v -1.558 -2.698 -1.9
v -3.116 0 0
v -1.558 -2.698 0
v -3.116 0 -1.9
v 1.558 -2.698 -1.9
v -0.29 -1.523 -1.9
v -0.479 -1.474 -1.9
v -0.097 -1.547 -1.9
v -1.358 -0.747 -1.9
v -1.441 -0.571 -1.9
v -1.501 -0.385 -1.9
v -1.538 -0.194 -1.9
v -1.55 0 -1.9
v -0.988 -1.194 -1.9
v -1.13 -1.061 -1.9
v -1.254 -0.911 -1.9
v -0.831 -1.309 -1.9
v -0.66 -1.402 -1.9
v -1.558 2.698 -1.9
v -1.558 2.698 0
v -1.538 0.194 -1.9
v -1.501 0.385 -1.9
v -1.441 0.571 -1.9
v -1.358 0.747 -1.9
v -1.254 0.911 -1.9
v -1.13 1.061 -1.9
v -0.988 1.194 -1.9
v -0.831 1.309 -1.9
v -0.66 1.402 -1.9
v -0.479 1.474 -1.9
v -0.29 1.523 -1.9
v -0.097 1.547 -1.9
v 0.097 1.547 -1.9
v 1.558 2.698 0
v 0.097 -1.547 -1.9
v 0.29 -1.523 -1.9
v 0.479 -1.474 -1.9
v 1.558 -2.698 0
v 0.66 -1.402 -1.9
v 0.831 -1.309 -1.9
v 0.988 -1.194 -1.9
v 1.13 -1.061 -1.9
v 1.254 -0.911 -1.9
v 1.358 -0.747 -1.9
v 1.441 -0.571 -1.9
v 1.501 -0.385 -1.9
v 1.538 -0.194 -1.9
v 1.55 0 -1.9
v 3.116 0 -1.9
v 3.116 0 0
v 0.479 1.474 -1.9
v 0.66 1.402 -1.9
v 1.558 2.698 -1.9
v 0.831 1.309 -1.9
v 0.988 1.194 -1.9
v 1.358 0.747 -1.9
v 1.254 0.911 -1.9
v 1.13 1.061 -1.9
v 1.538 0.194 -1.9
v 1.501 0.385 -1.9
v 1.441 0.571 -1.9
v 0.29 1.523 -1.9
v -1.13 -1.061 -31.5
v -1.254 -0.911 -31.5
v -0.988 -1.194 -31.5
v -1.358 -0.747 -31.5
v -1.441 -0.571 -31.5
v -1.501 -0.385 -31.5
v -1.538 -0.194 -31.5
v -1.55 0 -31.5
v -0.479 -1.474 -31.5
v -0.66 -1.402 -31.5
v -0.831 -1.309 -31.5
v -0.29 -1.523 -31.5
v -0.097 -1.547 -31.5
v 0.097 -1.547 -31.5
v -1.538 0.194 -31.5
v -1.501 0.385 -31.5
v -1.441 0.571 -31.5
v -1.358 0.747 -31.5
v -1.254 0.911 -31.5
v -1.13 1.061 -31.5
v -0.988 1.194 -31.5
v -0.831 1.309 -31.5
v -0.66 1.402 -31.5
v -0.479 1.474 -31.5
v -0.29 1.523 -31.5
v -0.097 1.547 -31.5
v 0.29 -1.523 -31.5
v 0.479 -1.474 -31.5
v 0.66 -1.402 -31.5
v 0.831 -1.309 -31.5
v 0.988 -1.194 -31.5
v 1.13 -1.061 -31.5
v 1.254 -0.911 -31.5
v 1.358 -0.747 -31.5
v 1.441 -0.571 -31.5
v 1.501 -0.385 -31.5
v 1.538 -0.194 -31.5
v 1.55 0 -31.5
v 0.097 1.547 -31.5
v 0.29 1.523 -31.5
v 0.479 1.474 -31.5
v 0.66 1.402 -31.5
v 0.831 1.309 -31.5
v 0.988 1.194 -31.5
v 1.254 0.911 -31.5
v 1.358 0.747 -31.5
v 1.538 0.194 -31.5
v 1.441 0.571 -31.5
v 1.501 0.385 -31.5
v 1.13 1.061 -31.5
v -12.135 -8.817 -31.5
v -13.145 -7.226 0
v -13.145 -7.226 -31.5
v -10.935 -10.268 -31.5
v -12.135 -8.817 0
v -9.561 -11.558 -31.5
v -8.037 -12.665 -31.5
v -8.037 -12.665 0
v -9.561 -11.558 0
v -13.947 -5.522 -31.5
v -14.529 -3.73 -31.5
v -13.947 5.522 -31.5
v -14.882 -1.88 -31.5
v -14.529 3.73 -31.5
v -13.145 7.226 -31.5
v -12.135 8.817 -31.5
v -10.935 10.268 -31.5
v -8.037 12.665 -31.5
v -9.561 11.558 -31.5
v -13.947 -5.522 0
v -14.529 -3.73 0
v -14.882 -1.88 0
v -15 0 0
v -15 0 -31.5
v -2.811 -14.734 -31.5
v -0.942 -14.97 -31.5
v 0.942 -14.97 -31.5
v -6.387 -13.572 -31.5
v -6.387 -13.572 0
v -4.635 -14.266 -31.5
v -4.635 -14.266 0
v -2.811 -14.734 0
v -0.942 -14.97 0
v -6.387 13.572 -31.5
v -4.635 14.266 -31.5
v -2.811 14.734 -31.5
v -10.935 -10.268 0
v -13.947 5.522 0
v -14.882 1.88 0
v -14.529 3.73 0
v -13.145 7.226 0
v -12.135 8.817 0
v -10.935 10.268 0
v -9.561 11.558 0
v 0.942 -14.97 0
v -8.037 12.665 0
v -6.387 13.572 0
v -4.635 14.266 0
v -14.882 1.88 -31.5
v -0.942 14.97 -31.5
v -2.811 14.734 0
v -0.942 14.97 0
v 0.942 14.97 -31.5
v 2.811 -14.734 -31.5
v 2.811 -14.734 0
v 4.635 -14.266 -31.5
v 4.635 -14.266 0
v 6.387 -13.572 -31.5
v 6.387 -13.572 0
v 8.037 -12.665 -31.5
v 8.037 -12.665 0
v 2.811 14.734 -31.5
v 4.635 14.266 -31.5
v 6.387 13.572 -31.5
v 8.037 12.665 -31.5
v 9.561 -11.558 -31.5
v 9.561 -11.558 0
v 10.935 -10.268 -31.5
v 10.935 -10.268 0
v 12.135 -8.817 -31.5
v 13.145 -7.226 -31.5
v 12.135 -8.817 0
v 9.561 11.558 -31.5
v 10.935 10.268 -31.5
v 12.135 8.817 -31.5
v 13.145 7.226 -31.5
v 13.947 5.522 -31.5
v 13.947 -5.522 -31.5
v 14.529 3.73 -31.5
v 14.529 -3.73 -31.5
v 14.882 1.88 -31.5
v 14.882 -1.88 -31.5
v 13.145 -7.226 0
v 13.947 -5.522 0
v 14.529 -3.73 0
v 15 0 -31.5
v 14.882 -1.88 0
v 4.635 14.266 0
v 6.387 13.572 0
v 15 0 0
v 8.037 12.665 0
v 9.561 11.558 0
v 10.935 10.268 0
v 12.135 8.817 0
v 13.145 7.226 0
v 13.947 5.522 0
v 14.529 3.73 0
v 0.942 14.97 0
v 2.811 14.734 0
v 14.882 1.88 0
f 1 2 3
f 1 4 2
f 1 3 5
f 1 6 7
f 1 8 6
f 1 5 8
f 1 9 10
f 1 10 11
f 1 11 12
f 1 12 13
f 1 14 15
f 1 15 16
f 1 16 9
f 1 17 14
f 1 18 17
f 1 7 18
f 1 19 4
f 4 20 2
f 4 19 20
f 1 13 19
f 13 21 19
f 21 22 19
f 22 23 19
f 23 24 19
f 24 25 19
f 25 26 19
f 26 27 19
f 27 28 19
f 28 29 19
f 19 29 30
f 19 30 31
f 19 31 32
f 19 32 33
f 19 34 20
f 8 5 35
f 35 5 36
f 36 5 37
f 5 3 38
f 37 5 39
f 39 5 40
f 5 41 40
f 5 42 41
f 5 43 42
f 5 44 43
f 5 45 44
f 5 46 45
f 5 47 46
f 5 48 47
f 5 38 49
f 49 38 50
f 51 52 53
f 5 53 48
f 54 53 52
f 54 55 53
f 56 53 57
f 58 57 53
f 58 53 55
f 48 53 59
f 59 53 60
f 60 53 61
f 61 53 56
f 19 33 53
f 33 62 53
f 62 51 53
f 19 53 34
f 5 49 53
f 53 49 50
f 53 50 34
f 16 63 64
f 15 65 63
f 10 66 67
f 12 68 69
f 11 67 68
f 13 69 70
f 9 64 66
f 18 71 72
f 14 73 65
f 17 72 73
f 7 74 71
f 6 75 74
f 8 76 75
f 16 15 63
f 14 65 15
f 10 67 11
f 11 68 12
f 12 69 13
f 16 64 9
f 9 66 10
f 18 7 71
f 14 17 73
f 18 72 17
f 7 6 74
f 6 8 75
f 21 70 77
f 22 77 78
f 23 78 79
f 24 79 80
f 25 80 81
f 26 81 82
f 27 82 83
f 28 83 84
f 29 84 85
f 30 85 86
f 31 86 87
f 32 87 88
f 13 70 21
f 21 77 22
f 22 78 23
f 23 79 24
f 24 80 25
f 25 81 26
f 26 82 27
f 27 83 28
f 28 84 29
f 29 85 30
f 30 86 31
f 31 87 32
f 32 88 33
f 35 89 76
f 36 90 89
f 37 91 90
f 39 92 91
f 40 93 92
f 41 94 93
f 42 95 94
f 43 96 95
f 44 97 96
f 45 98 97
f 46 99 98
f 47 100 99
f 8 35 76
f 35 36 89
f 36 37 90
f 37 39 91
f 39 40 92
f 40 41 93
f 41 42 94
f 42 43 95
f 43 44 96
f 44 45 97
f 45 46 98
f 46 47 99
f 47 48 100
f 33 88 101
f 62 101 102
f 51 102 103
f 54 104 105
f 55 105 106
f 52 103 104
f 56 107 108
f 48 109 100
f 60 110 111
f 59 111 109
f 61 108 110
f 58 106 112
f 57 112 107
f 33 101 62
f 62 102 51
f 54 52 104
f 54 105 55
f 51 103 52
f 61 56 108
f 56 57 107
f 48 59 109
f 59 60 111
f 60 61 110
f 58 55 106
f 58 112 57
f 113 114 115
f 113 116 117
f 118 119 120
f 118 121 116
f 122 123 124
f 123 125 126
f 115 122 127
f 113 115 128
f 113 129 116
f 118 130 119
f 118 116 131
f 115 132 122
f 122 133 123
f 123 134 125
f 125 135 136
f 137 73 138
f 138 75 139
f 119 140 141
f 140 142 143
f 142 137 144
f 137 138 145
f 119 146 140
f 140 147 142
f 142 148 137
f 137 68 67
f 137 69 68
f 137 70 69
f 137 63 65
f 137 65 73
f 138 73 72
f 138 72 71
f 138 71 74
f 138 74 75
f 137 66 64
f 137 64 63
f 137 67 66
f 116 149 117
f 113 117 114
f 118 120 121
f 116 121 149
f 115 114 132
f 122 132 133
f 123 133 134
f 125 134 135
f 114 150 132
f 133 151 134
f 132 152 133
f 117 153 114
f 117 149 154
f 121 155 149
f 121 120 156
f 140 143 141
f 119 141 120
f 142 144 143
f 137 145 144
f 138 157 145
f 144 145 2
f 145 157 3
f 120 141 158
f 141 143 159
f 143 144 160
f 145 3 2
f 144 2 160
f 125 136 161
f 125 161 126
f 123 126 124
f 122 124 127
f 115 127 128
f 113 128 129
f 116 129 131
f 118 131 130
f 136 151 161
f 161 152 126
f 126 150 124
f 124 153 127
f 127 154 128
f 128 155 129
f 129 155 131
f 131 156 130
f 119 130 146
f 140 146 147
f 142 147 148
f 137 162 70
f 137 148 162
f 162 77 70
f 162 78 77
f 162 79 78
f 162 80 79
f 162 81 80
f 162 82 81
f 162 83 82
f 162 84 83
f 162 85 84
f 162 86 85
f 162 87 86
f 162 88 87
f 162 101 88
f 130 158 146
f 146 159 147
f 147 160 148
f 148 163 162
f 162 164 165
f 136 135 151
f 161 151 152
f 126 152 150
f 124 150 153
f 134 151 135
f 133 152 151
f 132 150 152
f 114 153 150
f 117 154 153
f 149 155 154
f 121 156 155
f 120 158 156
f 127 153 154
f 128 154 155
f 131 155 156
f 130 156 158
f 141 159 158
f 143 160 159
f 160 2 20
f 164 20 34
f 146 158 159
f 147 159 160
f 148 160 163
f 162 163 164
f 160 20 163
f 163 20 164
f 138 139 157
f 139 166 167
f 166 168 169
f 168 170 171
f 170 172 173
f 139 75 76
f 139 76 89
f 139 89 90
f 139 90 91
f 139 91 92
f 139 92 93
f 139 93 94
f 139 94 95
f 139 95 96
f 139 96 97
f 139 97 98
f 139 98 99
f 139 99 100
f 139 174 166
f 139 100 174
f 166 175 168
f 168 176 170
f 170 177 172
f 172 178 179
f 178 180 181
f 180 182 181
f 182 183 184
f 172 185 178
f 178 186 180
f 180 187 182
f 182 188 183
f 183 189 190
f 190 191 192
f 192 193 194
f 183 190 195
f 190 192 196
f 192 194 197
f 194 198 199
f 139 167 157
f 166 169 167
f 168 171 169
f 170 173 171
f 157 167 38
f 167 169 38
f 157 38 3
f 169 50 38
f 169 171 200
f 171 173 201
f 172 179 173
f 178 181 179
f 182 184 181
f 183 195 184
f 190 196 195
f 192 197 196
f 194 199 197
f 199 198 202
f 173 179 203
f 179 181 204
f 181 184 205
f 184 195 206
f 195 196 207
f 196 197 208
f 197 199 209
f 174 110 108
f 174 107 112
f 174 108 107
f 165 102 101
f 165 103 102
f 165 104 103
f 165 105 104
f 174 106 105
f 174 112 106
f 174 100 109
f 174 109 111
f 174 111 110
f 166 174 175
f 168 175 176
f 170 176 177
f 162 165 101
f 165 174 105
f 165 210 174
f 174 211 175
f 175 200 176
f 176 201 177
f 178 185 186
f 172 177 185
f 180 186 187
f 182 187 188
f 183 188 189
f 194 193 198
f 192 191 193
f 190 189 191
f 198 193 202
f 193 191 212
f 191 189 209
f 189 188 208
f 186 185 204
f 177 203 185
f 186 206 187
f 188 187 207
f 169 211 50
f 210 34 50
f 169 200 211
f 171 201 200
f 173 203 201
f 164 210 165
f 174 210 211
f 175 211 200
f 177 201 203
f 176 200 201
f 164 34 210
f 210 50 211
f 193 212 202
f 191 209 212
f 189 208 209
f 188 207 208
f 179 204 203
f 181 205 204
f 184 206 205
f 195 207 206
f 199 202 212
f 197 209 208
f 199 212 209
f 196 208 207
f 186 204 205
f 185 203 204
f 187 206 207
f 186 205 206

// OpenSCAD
$fn = 50;

difference() {
	union() {
		translate(v = [0, 0, -31.5]) {
			cylinder(h = 31.5, r = 15.0);
		}
	}
	union() {
		translate(v = [0, 0, 0]) {
			rotate(a = [0, 0, 0]) {
				difference() {
					union() {
						translate(v = [0, 0, -1.9]) {
							linear_extrude(height = 1.9) {
								polygon(points = [[3.1158, 0.0], [1.5579000000000005, 2.698361953111554], [-1.5578999999999994, 2.6983619531115544], [-3.1158, 3.815754496783323e-16], [-1.5579000000000014, -2.6983619531115535], [1.557899999999998, -2.6983619531115552]]);
							}
						}
					}
					union();
				}
			}
		}
		#translate(v = [0, 0, -100.0]) {
			cylinder(h = 200, r = 1.55);
		}
	}
}
